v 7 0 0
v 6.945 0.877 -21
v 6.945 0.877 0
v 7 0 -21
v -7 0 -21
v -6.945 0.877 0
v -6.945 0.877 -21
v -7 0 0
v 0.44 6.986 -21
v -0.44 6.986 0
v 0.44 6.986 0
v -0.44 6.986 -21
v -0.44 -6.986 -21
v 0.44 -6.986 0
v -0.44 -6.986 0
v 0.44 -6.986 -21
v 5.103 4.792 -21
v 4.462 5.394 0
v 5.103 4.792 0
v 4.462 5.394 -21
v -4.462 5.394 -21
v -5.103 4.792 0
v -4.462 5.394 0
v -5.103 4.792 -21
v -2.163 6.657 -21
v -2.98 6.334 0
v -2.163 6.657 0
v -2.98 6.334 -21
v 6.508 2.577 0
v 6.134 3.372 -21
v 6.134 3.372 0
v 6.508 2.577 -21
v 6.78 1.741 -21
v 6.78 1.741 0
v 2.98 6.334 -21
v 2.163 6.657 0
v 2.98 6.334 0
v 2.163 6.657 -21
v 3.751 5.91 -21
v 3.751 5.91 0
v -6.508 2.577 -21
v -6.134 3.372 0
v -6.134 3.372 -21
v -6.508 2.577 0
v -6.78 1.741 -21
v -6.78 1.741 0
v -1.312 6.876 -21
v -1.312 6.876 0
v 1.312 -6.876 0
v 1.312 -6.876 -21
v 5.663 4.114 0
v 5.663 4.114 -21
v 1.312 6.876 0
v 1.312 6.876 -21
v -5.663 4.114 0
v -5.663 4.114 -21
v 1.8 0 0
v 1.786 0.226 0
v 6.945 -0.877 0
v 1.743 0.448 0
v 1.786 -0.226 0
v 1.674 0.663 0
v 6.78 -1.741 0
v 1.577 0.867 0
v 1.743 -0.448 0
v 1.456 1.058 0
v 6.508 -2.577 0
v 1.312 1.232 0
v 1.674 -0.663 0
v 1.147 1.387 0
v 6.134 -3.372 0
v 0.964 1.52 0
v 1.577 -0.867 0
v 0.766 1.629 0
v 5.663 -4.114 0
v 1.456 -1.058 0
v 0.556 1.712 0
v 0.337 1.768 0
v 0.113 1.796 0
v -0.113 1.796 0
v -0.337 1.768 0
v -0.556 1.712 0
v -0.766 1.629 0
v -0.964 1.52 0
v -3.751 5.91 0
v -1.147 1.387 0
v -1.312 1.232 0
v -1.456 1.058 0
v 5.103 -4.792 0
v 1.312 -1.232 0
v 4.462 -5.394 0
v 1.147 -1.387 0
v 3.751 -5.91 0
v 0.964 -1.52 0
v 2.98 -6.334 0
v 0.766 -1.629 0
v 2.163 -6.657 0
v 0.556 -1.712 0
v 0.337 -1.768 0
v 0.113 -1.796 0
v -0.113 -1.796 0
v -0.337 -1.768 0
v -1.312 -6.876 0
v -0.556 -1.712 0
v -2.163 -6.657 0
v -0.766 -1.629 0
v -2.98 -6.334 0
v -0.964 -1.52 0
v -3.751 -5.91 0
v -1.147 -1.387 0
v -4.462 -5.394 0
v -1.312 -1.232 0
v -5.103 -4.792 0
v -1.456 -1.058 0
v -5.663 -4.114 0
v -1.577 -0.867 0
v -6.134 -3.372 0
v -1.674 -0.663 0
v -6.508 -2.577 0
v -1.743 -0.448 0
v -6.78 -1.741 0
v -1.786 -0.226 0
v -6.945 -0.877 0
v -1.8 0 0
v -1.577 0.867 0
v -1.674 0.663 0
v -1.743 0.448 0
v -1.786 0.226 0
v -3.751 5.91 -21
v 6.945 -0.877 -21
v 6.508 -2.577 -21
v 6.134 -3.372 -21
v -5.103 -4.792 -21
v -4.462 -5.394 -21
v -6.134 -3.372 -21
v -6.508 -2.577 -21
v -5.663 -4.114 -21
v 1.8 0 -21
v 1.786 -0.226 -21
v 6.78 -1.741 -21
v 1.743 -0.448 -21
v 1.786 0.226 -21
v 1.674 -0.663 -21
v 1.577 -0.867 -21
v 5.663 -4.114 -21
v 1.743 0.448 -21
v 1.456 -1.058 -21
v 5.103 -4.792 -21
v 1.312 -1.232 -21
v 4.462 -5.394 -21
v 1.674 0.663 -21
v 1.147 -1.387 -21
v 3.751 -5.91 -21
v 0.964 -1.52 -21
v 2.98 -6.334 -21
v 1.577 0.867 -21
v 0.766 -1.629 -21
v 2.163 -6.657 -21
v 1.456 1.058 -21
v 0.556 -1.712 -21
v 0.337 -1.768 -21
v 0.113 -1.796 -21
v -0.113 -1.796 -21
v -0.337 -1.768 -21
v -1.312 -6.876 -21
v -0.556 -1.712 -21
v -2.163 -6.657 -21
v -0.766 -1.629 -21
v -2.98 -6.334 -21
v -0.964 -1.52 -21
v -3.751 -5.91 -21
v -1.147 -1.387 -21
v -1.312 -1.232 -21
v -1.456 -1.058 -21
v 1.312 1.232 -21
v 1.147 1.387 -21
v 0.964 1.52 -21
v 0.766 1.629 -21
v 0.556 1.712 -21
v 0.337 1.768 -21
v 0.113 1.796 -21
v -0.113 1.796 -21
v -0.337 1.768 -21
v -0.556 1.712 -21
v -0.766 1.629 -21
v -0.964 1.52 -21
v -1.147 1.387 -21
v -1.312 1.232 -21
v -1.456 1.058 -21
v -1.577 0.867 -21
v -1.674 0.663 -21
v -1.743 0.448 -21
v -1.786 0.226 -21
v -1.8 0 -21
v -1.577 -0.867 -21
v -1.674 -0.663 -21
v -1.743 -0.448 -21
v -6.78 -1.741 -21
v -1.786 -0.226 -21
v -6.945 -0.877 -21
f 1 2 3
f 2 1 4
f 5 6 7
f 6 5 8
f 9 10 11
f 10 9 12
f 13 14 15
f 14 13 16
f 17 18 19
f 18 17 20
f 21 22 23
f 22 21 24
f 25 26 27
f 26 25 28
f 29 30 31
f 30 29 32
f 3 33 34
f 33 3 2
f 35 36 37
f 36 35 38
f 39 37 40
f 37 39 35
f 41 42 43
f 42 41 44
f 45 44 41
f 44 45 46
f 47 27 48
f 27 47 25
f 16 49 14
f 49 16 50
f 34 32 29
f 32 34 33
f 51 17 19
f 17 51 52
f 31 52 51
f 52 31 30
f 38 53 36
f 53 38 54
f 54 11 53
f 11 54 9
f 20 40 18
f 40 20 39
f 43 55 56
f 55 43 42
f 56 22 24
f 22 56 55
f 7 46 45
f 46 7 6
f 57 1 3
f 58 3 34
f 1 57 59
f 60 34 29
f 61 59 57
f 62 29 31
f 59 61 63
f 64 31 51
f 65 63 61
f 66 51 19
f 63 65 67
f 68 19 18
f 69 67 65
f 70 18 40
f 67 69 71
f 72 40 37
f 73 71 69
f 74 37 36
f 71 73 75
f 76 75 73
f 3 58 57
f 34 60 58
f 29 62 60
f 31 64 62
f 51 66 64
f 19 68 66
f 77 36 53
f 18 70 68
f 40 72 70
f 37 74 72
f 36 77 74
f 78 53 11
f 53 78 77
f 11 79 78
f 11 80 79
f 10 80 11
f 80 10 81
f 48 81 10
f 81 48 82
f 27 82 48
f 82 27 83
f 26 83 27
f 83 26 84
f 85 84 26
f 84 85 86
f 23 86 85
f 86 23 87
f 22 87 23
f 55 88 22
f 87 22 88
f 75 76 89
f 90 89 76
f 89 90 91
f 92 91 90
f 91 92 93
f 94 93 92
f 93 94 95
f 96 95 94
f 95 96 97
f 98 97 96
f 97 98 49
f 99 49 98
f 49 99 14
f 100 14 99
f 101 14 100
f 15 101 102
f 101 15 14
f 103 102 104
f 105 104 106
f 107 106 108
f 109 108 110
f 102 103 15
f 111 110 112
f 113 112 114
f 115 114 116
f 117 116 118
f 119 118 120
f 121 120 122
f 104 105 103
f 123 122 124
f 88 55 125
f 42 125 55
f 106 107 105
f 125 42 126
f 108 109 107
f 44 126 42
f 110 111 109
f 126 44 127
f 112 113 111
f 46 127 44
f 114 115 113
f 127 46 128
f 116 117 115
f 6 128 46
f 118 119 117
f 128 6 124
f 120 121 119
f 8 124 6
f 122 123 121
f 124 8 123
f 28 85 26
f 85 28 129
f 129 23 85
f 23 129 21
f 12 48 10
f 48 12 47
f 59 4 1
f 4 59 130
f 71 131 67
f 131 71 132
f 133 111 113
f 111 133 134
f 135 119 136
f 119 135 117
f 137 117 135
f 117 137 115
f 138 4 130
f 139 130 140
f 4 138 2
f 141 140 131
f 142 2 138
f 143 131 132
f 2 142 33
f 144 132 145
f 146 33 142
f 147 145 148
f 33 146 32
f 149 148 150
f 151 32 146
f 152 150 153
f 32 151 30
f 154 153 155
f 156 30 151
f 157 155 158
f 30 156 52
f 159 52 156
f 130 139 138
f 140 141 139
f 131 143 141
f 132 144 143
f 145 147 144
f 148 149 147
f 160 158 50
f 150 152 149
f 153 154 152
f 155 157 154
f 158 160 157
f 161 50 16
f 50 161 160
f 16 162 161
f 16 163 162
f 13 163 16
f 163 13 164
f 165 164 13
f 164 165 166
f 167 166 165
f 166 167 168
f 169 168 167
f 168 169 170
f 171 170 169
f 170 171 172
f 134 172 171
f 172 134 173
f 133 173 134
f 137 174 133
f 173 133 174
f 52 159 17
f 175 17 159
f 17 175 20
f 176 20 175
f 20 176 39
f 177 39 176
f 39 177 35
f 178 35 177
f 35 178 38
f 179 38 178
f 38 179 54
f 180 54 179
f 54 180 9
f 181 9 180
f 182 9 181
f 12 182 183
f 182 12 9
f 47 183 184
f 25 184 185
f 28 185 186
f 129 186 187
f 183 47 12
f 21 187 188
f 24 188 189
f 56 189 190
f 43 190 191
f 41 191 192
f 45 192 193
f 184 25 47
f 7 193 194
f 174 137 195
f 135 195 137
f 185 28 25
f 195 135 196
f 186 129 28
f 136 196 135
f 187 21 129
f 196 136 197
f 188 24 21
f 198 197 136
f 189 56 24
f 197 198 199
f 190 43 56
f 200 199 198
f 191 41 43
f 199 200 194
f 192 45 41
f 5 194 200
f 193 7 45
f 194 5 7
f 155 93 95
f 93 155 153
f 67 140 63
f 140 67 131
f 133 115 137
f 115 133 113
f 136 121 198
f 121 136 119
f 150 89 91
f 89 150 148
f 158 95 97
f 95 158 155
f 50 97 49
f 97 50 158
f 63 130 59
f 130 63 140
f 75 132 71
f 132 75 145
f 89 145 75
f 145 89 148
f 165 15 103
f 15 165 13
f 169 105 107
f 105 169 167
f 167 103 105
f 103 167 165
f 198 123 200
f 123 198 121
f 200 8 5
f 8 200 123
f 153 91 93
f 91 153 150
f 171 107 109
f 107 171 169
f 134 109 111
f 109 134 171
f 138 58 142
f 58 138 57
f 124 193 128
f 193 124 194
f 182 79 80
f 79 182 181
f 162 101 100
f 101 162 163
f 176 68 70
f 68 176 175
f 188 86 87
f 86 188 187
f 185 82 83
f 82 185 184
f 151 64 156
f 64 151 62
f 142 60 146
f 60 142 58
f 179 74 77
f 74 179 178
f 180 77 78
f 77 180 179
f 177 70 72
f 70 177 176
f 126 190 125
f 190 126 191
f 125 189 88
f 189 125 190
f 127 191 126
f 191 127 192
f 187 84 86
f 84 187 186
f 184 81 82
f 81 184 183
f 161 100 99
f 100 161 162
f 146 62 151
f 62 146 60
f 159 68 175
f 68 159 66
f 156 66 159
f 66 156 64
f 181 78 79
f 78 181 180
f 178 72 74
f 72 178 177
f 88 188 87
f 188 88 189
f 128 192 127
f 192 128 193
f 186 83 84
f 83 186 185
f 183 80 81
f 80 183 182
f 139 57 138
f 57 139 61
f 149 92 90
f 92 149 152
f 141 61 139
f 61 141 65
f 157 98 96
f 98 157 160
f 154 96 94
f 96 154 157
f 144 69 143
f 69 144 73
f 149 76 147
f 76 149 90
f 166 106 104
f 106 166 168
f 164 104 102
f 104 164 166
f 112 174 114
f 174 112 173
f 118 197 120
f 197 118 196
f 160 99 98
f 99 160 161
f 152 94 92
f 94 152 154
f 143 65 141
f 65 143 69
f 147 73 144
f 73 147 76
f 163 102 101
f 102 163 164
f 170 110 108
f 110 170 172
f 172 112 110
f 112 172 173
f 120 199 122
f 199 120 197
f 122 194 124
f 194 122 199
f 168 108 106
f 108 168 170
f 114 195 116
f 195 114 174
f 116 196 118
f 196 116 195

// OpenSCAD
$fn = 50;


difference() {
	union() {
		translate(v = [0, 0, -21.0000000000]) {
			cylinder(h = 21, r = 7.0000000000);
		}
		cylinder(h = 0, r = 13.0000000000);
	}
	union() {
		#translate(v = [0, 0, -21]) {
			cylinder(h = 21, r = 1.8000000000);
		}
	}
}
